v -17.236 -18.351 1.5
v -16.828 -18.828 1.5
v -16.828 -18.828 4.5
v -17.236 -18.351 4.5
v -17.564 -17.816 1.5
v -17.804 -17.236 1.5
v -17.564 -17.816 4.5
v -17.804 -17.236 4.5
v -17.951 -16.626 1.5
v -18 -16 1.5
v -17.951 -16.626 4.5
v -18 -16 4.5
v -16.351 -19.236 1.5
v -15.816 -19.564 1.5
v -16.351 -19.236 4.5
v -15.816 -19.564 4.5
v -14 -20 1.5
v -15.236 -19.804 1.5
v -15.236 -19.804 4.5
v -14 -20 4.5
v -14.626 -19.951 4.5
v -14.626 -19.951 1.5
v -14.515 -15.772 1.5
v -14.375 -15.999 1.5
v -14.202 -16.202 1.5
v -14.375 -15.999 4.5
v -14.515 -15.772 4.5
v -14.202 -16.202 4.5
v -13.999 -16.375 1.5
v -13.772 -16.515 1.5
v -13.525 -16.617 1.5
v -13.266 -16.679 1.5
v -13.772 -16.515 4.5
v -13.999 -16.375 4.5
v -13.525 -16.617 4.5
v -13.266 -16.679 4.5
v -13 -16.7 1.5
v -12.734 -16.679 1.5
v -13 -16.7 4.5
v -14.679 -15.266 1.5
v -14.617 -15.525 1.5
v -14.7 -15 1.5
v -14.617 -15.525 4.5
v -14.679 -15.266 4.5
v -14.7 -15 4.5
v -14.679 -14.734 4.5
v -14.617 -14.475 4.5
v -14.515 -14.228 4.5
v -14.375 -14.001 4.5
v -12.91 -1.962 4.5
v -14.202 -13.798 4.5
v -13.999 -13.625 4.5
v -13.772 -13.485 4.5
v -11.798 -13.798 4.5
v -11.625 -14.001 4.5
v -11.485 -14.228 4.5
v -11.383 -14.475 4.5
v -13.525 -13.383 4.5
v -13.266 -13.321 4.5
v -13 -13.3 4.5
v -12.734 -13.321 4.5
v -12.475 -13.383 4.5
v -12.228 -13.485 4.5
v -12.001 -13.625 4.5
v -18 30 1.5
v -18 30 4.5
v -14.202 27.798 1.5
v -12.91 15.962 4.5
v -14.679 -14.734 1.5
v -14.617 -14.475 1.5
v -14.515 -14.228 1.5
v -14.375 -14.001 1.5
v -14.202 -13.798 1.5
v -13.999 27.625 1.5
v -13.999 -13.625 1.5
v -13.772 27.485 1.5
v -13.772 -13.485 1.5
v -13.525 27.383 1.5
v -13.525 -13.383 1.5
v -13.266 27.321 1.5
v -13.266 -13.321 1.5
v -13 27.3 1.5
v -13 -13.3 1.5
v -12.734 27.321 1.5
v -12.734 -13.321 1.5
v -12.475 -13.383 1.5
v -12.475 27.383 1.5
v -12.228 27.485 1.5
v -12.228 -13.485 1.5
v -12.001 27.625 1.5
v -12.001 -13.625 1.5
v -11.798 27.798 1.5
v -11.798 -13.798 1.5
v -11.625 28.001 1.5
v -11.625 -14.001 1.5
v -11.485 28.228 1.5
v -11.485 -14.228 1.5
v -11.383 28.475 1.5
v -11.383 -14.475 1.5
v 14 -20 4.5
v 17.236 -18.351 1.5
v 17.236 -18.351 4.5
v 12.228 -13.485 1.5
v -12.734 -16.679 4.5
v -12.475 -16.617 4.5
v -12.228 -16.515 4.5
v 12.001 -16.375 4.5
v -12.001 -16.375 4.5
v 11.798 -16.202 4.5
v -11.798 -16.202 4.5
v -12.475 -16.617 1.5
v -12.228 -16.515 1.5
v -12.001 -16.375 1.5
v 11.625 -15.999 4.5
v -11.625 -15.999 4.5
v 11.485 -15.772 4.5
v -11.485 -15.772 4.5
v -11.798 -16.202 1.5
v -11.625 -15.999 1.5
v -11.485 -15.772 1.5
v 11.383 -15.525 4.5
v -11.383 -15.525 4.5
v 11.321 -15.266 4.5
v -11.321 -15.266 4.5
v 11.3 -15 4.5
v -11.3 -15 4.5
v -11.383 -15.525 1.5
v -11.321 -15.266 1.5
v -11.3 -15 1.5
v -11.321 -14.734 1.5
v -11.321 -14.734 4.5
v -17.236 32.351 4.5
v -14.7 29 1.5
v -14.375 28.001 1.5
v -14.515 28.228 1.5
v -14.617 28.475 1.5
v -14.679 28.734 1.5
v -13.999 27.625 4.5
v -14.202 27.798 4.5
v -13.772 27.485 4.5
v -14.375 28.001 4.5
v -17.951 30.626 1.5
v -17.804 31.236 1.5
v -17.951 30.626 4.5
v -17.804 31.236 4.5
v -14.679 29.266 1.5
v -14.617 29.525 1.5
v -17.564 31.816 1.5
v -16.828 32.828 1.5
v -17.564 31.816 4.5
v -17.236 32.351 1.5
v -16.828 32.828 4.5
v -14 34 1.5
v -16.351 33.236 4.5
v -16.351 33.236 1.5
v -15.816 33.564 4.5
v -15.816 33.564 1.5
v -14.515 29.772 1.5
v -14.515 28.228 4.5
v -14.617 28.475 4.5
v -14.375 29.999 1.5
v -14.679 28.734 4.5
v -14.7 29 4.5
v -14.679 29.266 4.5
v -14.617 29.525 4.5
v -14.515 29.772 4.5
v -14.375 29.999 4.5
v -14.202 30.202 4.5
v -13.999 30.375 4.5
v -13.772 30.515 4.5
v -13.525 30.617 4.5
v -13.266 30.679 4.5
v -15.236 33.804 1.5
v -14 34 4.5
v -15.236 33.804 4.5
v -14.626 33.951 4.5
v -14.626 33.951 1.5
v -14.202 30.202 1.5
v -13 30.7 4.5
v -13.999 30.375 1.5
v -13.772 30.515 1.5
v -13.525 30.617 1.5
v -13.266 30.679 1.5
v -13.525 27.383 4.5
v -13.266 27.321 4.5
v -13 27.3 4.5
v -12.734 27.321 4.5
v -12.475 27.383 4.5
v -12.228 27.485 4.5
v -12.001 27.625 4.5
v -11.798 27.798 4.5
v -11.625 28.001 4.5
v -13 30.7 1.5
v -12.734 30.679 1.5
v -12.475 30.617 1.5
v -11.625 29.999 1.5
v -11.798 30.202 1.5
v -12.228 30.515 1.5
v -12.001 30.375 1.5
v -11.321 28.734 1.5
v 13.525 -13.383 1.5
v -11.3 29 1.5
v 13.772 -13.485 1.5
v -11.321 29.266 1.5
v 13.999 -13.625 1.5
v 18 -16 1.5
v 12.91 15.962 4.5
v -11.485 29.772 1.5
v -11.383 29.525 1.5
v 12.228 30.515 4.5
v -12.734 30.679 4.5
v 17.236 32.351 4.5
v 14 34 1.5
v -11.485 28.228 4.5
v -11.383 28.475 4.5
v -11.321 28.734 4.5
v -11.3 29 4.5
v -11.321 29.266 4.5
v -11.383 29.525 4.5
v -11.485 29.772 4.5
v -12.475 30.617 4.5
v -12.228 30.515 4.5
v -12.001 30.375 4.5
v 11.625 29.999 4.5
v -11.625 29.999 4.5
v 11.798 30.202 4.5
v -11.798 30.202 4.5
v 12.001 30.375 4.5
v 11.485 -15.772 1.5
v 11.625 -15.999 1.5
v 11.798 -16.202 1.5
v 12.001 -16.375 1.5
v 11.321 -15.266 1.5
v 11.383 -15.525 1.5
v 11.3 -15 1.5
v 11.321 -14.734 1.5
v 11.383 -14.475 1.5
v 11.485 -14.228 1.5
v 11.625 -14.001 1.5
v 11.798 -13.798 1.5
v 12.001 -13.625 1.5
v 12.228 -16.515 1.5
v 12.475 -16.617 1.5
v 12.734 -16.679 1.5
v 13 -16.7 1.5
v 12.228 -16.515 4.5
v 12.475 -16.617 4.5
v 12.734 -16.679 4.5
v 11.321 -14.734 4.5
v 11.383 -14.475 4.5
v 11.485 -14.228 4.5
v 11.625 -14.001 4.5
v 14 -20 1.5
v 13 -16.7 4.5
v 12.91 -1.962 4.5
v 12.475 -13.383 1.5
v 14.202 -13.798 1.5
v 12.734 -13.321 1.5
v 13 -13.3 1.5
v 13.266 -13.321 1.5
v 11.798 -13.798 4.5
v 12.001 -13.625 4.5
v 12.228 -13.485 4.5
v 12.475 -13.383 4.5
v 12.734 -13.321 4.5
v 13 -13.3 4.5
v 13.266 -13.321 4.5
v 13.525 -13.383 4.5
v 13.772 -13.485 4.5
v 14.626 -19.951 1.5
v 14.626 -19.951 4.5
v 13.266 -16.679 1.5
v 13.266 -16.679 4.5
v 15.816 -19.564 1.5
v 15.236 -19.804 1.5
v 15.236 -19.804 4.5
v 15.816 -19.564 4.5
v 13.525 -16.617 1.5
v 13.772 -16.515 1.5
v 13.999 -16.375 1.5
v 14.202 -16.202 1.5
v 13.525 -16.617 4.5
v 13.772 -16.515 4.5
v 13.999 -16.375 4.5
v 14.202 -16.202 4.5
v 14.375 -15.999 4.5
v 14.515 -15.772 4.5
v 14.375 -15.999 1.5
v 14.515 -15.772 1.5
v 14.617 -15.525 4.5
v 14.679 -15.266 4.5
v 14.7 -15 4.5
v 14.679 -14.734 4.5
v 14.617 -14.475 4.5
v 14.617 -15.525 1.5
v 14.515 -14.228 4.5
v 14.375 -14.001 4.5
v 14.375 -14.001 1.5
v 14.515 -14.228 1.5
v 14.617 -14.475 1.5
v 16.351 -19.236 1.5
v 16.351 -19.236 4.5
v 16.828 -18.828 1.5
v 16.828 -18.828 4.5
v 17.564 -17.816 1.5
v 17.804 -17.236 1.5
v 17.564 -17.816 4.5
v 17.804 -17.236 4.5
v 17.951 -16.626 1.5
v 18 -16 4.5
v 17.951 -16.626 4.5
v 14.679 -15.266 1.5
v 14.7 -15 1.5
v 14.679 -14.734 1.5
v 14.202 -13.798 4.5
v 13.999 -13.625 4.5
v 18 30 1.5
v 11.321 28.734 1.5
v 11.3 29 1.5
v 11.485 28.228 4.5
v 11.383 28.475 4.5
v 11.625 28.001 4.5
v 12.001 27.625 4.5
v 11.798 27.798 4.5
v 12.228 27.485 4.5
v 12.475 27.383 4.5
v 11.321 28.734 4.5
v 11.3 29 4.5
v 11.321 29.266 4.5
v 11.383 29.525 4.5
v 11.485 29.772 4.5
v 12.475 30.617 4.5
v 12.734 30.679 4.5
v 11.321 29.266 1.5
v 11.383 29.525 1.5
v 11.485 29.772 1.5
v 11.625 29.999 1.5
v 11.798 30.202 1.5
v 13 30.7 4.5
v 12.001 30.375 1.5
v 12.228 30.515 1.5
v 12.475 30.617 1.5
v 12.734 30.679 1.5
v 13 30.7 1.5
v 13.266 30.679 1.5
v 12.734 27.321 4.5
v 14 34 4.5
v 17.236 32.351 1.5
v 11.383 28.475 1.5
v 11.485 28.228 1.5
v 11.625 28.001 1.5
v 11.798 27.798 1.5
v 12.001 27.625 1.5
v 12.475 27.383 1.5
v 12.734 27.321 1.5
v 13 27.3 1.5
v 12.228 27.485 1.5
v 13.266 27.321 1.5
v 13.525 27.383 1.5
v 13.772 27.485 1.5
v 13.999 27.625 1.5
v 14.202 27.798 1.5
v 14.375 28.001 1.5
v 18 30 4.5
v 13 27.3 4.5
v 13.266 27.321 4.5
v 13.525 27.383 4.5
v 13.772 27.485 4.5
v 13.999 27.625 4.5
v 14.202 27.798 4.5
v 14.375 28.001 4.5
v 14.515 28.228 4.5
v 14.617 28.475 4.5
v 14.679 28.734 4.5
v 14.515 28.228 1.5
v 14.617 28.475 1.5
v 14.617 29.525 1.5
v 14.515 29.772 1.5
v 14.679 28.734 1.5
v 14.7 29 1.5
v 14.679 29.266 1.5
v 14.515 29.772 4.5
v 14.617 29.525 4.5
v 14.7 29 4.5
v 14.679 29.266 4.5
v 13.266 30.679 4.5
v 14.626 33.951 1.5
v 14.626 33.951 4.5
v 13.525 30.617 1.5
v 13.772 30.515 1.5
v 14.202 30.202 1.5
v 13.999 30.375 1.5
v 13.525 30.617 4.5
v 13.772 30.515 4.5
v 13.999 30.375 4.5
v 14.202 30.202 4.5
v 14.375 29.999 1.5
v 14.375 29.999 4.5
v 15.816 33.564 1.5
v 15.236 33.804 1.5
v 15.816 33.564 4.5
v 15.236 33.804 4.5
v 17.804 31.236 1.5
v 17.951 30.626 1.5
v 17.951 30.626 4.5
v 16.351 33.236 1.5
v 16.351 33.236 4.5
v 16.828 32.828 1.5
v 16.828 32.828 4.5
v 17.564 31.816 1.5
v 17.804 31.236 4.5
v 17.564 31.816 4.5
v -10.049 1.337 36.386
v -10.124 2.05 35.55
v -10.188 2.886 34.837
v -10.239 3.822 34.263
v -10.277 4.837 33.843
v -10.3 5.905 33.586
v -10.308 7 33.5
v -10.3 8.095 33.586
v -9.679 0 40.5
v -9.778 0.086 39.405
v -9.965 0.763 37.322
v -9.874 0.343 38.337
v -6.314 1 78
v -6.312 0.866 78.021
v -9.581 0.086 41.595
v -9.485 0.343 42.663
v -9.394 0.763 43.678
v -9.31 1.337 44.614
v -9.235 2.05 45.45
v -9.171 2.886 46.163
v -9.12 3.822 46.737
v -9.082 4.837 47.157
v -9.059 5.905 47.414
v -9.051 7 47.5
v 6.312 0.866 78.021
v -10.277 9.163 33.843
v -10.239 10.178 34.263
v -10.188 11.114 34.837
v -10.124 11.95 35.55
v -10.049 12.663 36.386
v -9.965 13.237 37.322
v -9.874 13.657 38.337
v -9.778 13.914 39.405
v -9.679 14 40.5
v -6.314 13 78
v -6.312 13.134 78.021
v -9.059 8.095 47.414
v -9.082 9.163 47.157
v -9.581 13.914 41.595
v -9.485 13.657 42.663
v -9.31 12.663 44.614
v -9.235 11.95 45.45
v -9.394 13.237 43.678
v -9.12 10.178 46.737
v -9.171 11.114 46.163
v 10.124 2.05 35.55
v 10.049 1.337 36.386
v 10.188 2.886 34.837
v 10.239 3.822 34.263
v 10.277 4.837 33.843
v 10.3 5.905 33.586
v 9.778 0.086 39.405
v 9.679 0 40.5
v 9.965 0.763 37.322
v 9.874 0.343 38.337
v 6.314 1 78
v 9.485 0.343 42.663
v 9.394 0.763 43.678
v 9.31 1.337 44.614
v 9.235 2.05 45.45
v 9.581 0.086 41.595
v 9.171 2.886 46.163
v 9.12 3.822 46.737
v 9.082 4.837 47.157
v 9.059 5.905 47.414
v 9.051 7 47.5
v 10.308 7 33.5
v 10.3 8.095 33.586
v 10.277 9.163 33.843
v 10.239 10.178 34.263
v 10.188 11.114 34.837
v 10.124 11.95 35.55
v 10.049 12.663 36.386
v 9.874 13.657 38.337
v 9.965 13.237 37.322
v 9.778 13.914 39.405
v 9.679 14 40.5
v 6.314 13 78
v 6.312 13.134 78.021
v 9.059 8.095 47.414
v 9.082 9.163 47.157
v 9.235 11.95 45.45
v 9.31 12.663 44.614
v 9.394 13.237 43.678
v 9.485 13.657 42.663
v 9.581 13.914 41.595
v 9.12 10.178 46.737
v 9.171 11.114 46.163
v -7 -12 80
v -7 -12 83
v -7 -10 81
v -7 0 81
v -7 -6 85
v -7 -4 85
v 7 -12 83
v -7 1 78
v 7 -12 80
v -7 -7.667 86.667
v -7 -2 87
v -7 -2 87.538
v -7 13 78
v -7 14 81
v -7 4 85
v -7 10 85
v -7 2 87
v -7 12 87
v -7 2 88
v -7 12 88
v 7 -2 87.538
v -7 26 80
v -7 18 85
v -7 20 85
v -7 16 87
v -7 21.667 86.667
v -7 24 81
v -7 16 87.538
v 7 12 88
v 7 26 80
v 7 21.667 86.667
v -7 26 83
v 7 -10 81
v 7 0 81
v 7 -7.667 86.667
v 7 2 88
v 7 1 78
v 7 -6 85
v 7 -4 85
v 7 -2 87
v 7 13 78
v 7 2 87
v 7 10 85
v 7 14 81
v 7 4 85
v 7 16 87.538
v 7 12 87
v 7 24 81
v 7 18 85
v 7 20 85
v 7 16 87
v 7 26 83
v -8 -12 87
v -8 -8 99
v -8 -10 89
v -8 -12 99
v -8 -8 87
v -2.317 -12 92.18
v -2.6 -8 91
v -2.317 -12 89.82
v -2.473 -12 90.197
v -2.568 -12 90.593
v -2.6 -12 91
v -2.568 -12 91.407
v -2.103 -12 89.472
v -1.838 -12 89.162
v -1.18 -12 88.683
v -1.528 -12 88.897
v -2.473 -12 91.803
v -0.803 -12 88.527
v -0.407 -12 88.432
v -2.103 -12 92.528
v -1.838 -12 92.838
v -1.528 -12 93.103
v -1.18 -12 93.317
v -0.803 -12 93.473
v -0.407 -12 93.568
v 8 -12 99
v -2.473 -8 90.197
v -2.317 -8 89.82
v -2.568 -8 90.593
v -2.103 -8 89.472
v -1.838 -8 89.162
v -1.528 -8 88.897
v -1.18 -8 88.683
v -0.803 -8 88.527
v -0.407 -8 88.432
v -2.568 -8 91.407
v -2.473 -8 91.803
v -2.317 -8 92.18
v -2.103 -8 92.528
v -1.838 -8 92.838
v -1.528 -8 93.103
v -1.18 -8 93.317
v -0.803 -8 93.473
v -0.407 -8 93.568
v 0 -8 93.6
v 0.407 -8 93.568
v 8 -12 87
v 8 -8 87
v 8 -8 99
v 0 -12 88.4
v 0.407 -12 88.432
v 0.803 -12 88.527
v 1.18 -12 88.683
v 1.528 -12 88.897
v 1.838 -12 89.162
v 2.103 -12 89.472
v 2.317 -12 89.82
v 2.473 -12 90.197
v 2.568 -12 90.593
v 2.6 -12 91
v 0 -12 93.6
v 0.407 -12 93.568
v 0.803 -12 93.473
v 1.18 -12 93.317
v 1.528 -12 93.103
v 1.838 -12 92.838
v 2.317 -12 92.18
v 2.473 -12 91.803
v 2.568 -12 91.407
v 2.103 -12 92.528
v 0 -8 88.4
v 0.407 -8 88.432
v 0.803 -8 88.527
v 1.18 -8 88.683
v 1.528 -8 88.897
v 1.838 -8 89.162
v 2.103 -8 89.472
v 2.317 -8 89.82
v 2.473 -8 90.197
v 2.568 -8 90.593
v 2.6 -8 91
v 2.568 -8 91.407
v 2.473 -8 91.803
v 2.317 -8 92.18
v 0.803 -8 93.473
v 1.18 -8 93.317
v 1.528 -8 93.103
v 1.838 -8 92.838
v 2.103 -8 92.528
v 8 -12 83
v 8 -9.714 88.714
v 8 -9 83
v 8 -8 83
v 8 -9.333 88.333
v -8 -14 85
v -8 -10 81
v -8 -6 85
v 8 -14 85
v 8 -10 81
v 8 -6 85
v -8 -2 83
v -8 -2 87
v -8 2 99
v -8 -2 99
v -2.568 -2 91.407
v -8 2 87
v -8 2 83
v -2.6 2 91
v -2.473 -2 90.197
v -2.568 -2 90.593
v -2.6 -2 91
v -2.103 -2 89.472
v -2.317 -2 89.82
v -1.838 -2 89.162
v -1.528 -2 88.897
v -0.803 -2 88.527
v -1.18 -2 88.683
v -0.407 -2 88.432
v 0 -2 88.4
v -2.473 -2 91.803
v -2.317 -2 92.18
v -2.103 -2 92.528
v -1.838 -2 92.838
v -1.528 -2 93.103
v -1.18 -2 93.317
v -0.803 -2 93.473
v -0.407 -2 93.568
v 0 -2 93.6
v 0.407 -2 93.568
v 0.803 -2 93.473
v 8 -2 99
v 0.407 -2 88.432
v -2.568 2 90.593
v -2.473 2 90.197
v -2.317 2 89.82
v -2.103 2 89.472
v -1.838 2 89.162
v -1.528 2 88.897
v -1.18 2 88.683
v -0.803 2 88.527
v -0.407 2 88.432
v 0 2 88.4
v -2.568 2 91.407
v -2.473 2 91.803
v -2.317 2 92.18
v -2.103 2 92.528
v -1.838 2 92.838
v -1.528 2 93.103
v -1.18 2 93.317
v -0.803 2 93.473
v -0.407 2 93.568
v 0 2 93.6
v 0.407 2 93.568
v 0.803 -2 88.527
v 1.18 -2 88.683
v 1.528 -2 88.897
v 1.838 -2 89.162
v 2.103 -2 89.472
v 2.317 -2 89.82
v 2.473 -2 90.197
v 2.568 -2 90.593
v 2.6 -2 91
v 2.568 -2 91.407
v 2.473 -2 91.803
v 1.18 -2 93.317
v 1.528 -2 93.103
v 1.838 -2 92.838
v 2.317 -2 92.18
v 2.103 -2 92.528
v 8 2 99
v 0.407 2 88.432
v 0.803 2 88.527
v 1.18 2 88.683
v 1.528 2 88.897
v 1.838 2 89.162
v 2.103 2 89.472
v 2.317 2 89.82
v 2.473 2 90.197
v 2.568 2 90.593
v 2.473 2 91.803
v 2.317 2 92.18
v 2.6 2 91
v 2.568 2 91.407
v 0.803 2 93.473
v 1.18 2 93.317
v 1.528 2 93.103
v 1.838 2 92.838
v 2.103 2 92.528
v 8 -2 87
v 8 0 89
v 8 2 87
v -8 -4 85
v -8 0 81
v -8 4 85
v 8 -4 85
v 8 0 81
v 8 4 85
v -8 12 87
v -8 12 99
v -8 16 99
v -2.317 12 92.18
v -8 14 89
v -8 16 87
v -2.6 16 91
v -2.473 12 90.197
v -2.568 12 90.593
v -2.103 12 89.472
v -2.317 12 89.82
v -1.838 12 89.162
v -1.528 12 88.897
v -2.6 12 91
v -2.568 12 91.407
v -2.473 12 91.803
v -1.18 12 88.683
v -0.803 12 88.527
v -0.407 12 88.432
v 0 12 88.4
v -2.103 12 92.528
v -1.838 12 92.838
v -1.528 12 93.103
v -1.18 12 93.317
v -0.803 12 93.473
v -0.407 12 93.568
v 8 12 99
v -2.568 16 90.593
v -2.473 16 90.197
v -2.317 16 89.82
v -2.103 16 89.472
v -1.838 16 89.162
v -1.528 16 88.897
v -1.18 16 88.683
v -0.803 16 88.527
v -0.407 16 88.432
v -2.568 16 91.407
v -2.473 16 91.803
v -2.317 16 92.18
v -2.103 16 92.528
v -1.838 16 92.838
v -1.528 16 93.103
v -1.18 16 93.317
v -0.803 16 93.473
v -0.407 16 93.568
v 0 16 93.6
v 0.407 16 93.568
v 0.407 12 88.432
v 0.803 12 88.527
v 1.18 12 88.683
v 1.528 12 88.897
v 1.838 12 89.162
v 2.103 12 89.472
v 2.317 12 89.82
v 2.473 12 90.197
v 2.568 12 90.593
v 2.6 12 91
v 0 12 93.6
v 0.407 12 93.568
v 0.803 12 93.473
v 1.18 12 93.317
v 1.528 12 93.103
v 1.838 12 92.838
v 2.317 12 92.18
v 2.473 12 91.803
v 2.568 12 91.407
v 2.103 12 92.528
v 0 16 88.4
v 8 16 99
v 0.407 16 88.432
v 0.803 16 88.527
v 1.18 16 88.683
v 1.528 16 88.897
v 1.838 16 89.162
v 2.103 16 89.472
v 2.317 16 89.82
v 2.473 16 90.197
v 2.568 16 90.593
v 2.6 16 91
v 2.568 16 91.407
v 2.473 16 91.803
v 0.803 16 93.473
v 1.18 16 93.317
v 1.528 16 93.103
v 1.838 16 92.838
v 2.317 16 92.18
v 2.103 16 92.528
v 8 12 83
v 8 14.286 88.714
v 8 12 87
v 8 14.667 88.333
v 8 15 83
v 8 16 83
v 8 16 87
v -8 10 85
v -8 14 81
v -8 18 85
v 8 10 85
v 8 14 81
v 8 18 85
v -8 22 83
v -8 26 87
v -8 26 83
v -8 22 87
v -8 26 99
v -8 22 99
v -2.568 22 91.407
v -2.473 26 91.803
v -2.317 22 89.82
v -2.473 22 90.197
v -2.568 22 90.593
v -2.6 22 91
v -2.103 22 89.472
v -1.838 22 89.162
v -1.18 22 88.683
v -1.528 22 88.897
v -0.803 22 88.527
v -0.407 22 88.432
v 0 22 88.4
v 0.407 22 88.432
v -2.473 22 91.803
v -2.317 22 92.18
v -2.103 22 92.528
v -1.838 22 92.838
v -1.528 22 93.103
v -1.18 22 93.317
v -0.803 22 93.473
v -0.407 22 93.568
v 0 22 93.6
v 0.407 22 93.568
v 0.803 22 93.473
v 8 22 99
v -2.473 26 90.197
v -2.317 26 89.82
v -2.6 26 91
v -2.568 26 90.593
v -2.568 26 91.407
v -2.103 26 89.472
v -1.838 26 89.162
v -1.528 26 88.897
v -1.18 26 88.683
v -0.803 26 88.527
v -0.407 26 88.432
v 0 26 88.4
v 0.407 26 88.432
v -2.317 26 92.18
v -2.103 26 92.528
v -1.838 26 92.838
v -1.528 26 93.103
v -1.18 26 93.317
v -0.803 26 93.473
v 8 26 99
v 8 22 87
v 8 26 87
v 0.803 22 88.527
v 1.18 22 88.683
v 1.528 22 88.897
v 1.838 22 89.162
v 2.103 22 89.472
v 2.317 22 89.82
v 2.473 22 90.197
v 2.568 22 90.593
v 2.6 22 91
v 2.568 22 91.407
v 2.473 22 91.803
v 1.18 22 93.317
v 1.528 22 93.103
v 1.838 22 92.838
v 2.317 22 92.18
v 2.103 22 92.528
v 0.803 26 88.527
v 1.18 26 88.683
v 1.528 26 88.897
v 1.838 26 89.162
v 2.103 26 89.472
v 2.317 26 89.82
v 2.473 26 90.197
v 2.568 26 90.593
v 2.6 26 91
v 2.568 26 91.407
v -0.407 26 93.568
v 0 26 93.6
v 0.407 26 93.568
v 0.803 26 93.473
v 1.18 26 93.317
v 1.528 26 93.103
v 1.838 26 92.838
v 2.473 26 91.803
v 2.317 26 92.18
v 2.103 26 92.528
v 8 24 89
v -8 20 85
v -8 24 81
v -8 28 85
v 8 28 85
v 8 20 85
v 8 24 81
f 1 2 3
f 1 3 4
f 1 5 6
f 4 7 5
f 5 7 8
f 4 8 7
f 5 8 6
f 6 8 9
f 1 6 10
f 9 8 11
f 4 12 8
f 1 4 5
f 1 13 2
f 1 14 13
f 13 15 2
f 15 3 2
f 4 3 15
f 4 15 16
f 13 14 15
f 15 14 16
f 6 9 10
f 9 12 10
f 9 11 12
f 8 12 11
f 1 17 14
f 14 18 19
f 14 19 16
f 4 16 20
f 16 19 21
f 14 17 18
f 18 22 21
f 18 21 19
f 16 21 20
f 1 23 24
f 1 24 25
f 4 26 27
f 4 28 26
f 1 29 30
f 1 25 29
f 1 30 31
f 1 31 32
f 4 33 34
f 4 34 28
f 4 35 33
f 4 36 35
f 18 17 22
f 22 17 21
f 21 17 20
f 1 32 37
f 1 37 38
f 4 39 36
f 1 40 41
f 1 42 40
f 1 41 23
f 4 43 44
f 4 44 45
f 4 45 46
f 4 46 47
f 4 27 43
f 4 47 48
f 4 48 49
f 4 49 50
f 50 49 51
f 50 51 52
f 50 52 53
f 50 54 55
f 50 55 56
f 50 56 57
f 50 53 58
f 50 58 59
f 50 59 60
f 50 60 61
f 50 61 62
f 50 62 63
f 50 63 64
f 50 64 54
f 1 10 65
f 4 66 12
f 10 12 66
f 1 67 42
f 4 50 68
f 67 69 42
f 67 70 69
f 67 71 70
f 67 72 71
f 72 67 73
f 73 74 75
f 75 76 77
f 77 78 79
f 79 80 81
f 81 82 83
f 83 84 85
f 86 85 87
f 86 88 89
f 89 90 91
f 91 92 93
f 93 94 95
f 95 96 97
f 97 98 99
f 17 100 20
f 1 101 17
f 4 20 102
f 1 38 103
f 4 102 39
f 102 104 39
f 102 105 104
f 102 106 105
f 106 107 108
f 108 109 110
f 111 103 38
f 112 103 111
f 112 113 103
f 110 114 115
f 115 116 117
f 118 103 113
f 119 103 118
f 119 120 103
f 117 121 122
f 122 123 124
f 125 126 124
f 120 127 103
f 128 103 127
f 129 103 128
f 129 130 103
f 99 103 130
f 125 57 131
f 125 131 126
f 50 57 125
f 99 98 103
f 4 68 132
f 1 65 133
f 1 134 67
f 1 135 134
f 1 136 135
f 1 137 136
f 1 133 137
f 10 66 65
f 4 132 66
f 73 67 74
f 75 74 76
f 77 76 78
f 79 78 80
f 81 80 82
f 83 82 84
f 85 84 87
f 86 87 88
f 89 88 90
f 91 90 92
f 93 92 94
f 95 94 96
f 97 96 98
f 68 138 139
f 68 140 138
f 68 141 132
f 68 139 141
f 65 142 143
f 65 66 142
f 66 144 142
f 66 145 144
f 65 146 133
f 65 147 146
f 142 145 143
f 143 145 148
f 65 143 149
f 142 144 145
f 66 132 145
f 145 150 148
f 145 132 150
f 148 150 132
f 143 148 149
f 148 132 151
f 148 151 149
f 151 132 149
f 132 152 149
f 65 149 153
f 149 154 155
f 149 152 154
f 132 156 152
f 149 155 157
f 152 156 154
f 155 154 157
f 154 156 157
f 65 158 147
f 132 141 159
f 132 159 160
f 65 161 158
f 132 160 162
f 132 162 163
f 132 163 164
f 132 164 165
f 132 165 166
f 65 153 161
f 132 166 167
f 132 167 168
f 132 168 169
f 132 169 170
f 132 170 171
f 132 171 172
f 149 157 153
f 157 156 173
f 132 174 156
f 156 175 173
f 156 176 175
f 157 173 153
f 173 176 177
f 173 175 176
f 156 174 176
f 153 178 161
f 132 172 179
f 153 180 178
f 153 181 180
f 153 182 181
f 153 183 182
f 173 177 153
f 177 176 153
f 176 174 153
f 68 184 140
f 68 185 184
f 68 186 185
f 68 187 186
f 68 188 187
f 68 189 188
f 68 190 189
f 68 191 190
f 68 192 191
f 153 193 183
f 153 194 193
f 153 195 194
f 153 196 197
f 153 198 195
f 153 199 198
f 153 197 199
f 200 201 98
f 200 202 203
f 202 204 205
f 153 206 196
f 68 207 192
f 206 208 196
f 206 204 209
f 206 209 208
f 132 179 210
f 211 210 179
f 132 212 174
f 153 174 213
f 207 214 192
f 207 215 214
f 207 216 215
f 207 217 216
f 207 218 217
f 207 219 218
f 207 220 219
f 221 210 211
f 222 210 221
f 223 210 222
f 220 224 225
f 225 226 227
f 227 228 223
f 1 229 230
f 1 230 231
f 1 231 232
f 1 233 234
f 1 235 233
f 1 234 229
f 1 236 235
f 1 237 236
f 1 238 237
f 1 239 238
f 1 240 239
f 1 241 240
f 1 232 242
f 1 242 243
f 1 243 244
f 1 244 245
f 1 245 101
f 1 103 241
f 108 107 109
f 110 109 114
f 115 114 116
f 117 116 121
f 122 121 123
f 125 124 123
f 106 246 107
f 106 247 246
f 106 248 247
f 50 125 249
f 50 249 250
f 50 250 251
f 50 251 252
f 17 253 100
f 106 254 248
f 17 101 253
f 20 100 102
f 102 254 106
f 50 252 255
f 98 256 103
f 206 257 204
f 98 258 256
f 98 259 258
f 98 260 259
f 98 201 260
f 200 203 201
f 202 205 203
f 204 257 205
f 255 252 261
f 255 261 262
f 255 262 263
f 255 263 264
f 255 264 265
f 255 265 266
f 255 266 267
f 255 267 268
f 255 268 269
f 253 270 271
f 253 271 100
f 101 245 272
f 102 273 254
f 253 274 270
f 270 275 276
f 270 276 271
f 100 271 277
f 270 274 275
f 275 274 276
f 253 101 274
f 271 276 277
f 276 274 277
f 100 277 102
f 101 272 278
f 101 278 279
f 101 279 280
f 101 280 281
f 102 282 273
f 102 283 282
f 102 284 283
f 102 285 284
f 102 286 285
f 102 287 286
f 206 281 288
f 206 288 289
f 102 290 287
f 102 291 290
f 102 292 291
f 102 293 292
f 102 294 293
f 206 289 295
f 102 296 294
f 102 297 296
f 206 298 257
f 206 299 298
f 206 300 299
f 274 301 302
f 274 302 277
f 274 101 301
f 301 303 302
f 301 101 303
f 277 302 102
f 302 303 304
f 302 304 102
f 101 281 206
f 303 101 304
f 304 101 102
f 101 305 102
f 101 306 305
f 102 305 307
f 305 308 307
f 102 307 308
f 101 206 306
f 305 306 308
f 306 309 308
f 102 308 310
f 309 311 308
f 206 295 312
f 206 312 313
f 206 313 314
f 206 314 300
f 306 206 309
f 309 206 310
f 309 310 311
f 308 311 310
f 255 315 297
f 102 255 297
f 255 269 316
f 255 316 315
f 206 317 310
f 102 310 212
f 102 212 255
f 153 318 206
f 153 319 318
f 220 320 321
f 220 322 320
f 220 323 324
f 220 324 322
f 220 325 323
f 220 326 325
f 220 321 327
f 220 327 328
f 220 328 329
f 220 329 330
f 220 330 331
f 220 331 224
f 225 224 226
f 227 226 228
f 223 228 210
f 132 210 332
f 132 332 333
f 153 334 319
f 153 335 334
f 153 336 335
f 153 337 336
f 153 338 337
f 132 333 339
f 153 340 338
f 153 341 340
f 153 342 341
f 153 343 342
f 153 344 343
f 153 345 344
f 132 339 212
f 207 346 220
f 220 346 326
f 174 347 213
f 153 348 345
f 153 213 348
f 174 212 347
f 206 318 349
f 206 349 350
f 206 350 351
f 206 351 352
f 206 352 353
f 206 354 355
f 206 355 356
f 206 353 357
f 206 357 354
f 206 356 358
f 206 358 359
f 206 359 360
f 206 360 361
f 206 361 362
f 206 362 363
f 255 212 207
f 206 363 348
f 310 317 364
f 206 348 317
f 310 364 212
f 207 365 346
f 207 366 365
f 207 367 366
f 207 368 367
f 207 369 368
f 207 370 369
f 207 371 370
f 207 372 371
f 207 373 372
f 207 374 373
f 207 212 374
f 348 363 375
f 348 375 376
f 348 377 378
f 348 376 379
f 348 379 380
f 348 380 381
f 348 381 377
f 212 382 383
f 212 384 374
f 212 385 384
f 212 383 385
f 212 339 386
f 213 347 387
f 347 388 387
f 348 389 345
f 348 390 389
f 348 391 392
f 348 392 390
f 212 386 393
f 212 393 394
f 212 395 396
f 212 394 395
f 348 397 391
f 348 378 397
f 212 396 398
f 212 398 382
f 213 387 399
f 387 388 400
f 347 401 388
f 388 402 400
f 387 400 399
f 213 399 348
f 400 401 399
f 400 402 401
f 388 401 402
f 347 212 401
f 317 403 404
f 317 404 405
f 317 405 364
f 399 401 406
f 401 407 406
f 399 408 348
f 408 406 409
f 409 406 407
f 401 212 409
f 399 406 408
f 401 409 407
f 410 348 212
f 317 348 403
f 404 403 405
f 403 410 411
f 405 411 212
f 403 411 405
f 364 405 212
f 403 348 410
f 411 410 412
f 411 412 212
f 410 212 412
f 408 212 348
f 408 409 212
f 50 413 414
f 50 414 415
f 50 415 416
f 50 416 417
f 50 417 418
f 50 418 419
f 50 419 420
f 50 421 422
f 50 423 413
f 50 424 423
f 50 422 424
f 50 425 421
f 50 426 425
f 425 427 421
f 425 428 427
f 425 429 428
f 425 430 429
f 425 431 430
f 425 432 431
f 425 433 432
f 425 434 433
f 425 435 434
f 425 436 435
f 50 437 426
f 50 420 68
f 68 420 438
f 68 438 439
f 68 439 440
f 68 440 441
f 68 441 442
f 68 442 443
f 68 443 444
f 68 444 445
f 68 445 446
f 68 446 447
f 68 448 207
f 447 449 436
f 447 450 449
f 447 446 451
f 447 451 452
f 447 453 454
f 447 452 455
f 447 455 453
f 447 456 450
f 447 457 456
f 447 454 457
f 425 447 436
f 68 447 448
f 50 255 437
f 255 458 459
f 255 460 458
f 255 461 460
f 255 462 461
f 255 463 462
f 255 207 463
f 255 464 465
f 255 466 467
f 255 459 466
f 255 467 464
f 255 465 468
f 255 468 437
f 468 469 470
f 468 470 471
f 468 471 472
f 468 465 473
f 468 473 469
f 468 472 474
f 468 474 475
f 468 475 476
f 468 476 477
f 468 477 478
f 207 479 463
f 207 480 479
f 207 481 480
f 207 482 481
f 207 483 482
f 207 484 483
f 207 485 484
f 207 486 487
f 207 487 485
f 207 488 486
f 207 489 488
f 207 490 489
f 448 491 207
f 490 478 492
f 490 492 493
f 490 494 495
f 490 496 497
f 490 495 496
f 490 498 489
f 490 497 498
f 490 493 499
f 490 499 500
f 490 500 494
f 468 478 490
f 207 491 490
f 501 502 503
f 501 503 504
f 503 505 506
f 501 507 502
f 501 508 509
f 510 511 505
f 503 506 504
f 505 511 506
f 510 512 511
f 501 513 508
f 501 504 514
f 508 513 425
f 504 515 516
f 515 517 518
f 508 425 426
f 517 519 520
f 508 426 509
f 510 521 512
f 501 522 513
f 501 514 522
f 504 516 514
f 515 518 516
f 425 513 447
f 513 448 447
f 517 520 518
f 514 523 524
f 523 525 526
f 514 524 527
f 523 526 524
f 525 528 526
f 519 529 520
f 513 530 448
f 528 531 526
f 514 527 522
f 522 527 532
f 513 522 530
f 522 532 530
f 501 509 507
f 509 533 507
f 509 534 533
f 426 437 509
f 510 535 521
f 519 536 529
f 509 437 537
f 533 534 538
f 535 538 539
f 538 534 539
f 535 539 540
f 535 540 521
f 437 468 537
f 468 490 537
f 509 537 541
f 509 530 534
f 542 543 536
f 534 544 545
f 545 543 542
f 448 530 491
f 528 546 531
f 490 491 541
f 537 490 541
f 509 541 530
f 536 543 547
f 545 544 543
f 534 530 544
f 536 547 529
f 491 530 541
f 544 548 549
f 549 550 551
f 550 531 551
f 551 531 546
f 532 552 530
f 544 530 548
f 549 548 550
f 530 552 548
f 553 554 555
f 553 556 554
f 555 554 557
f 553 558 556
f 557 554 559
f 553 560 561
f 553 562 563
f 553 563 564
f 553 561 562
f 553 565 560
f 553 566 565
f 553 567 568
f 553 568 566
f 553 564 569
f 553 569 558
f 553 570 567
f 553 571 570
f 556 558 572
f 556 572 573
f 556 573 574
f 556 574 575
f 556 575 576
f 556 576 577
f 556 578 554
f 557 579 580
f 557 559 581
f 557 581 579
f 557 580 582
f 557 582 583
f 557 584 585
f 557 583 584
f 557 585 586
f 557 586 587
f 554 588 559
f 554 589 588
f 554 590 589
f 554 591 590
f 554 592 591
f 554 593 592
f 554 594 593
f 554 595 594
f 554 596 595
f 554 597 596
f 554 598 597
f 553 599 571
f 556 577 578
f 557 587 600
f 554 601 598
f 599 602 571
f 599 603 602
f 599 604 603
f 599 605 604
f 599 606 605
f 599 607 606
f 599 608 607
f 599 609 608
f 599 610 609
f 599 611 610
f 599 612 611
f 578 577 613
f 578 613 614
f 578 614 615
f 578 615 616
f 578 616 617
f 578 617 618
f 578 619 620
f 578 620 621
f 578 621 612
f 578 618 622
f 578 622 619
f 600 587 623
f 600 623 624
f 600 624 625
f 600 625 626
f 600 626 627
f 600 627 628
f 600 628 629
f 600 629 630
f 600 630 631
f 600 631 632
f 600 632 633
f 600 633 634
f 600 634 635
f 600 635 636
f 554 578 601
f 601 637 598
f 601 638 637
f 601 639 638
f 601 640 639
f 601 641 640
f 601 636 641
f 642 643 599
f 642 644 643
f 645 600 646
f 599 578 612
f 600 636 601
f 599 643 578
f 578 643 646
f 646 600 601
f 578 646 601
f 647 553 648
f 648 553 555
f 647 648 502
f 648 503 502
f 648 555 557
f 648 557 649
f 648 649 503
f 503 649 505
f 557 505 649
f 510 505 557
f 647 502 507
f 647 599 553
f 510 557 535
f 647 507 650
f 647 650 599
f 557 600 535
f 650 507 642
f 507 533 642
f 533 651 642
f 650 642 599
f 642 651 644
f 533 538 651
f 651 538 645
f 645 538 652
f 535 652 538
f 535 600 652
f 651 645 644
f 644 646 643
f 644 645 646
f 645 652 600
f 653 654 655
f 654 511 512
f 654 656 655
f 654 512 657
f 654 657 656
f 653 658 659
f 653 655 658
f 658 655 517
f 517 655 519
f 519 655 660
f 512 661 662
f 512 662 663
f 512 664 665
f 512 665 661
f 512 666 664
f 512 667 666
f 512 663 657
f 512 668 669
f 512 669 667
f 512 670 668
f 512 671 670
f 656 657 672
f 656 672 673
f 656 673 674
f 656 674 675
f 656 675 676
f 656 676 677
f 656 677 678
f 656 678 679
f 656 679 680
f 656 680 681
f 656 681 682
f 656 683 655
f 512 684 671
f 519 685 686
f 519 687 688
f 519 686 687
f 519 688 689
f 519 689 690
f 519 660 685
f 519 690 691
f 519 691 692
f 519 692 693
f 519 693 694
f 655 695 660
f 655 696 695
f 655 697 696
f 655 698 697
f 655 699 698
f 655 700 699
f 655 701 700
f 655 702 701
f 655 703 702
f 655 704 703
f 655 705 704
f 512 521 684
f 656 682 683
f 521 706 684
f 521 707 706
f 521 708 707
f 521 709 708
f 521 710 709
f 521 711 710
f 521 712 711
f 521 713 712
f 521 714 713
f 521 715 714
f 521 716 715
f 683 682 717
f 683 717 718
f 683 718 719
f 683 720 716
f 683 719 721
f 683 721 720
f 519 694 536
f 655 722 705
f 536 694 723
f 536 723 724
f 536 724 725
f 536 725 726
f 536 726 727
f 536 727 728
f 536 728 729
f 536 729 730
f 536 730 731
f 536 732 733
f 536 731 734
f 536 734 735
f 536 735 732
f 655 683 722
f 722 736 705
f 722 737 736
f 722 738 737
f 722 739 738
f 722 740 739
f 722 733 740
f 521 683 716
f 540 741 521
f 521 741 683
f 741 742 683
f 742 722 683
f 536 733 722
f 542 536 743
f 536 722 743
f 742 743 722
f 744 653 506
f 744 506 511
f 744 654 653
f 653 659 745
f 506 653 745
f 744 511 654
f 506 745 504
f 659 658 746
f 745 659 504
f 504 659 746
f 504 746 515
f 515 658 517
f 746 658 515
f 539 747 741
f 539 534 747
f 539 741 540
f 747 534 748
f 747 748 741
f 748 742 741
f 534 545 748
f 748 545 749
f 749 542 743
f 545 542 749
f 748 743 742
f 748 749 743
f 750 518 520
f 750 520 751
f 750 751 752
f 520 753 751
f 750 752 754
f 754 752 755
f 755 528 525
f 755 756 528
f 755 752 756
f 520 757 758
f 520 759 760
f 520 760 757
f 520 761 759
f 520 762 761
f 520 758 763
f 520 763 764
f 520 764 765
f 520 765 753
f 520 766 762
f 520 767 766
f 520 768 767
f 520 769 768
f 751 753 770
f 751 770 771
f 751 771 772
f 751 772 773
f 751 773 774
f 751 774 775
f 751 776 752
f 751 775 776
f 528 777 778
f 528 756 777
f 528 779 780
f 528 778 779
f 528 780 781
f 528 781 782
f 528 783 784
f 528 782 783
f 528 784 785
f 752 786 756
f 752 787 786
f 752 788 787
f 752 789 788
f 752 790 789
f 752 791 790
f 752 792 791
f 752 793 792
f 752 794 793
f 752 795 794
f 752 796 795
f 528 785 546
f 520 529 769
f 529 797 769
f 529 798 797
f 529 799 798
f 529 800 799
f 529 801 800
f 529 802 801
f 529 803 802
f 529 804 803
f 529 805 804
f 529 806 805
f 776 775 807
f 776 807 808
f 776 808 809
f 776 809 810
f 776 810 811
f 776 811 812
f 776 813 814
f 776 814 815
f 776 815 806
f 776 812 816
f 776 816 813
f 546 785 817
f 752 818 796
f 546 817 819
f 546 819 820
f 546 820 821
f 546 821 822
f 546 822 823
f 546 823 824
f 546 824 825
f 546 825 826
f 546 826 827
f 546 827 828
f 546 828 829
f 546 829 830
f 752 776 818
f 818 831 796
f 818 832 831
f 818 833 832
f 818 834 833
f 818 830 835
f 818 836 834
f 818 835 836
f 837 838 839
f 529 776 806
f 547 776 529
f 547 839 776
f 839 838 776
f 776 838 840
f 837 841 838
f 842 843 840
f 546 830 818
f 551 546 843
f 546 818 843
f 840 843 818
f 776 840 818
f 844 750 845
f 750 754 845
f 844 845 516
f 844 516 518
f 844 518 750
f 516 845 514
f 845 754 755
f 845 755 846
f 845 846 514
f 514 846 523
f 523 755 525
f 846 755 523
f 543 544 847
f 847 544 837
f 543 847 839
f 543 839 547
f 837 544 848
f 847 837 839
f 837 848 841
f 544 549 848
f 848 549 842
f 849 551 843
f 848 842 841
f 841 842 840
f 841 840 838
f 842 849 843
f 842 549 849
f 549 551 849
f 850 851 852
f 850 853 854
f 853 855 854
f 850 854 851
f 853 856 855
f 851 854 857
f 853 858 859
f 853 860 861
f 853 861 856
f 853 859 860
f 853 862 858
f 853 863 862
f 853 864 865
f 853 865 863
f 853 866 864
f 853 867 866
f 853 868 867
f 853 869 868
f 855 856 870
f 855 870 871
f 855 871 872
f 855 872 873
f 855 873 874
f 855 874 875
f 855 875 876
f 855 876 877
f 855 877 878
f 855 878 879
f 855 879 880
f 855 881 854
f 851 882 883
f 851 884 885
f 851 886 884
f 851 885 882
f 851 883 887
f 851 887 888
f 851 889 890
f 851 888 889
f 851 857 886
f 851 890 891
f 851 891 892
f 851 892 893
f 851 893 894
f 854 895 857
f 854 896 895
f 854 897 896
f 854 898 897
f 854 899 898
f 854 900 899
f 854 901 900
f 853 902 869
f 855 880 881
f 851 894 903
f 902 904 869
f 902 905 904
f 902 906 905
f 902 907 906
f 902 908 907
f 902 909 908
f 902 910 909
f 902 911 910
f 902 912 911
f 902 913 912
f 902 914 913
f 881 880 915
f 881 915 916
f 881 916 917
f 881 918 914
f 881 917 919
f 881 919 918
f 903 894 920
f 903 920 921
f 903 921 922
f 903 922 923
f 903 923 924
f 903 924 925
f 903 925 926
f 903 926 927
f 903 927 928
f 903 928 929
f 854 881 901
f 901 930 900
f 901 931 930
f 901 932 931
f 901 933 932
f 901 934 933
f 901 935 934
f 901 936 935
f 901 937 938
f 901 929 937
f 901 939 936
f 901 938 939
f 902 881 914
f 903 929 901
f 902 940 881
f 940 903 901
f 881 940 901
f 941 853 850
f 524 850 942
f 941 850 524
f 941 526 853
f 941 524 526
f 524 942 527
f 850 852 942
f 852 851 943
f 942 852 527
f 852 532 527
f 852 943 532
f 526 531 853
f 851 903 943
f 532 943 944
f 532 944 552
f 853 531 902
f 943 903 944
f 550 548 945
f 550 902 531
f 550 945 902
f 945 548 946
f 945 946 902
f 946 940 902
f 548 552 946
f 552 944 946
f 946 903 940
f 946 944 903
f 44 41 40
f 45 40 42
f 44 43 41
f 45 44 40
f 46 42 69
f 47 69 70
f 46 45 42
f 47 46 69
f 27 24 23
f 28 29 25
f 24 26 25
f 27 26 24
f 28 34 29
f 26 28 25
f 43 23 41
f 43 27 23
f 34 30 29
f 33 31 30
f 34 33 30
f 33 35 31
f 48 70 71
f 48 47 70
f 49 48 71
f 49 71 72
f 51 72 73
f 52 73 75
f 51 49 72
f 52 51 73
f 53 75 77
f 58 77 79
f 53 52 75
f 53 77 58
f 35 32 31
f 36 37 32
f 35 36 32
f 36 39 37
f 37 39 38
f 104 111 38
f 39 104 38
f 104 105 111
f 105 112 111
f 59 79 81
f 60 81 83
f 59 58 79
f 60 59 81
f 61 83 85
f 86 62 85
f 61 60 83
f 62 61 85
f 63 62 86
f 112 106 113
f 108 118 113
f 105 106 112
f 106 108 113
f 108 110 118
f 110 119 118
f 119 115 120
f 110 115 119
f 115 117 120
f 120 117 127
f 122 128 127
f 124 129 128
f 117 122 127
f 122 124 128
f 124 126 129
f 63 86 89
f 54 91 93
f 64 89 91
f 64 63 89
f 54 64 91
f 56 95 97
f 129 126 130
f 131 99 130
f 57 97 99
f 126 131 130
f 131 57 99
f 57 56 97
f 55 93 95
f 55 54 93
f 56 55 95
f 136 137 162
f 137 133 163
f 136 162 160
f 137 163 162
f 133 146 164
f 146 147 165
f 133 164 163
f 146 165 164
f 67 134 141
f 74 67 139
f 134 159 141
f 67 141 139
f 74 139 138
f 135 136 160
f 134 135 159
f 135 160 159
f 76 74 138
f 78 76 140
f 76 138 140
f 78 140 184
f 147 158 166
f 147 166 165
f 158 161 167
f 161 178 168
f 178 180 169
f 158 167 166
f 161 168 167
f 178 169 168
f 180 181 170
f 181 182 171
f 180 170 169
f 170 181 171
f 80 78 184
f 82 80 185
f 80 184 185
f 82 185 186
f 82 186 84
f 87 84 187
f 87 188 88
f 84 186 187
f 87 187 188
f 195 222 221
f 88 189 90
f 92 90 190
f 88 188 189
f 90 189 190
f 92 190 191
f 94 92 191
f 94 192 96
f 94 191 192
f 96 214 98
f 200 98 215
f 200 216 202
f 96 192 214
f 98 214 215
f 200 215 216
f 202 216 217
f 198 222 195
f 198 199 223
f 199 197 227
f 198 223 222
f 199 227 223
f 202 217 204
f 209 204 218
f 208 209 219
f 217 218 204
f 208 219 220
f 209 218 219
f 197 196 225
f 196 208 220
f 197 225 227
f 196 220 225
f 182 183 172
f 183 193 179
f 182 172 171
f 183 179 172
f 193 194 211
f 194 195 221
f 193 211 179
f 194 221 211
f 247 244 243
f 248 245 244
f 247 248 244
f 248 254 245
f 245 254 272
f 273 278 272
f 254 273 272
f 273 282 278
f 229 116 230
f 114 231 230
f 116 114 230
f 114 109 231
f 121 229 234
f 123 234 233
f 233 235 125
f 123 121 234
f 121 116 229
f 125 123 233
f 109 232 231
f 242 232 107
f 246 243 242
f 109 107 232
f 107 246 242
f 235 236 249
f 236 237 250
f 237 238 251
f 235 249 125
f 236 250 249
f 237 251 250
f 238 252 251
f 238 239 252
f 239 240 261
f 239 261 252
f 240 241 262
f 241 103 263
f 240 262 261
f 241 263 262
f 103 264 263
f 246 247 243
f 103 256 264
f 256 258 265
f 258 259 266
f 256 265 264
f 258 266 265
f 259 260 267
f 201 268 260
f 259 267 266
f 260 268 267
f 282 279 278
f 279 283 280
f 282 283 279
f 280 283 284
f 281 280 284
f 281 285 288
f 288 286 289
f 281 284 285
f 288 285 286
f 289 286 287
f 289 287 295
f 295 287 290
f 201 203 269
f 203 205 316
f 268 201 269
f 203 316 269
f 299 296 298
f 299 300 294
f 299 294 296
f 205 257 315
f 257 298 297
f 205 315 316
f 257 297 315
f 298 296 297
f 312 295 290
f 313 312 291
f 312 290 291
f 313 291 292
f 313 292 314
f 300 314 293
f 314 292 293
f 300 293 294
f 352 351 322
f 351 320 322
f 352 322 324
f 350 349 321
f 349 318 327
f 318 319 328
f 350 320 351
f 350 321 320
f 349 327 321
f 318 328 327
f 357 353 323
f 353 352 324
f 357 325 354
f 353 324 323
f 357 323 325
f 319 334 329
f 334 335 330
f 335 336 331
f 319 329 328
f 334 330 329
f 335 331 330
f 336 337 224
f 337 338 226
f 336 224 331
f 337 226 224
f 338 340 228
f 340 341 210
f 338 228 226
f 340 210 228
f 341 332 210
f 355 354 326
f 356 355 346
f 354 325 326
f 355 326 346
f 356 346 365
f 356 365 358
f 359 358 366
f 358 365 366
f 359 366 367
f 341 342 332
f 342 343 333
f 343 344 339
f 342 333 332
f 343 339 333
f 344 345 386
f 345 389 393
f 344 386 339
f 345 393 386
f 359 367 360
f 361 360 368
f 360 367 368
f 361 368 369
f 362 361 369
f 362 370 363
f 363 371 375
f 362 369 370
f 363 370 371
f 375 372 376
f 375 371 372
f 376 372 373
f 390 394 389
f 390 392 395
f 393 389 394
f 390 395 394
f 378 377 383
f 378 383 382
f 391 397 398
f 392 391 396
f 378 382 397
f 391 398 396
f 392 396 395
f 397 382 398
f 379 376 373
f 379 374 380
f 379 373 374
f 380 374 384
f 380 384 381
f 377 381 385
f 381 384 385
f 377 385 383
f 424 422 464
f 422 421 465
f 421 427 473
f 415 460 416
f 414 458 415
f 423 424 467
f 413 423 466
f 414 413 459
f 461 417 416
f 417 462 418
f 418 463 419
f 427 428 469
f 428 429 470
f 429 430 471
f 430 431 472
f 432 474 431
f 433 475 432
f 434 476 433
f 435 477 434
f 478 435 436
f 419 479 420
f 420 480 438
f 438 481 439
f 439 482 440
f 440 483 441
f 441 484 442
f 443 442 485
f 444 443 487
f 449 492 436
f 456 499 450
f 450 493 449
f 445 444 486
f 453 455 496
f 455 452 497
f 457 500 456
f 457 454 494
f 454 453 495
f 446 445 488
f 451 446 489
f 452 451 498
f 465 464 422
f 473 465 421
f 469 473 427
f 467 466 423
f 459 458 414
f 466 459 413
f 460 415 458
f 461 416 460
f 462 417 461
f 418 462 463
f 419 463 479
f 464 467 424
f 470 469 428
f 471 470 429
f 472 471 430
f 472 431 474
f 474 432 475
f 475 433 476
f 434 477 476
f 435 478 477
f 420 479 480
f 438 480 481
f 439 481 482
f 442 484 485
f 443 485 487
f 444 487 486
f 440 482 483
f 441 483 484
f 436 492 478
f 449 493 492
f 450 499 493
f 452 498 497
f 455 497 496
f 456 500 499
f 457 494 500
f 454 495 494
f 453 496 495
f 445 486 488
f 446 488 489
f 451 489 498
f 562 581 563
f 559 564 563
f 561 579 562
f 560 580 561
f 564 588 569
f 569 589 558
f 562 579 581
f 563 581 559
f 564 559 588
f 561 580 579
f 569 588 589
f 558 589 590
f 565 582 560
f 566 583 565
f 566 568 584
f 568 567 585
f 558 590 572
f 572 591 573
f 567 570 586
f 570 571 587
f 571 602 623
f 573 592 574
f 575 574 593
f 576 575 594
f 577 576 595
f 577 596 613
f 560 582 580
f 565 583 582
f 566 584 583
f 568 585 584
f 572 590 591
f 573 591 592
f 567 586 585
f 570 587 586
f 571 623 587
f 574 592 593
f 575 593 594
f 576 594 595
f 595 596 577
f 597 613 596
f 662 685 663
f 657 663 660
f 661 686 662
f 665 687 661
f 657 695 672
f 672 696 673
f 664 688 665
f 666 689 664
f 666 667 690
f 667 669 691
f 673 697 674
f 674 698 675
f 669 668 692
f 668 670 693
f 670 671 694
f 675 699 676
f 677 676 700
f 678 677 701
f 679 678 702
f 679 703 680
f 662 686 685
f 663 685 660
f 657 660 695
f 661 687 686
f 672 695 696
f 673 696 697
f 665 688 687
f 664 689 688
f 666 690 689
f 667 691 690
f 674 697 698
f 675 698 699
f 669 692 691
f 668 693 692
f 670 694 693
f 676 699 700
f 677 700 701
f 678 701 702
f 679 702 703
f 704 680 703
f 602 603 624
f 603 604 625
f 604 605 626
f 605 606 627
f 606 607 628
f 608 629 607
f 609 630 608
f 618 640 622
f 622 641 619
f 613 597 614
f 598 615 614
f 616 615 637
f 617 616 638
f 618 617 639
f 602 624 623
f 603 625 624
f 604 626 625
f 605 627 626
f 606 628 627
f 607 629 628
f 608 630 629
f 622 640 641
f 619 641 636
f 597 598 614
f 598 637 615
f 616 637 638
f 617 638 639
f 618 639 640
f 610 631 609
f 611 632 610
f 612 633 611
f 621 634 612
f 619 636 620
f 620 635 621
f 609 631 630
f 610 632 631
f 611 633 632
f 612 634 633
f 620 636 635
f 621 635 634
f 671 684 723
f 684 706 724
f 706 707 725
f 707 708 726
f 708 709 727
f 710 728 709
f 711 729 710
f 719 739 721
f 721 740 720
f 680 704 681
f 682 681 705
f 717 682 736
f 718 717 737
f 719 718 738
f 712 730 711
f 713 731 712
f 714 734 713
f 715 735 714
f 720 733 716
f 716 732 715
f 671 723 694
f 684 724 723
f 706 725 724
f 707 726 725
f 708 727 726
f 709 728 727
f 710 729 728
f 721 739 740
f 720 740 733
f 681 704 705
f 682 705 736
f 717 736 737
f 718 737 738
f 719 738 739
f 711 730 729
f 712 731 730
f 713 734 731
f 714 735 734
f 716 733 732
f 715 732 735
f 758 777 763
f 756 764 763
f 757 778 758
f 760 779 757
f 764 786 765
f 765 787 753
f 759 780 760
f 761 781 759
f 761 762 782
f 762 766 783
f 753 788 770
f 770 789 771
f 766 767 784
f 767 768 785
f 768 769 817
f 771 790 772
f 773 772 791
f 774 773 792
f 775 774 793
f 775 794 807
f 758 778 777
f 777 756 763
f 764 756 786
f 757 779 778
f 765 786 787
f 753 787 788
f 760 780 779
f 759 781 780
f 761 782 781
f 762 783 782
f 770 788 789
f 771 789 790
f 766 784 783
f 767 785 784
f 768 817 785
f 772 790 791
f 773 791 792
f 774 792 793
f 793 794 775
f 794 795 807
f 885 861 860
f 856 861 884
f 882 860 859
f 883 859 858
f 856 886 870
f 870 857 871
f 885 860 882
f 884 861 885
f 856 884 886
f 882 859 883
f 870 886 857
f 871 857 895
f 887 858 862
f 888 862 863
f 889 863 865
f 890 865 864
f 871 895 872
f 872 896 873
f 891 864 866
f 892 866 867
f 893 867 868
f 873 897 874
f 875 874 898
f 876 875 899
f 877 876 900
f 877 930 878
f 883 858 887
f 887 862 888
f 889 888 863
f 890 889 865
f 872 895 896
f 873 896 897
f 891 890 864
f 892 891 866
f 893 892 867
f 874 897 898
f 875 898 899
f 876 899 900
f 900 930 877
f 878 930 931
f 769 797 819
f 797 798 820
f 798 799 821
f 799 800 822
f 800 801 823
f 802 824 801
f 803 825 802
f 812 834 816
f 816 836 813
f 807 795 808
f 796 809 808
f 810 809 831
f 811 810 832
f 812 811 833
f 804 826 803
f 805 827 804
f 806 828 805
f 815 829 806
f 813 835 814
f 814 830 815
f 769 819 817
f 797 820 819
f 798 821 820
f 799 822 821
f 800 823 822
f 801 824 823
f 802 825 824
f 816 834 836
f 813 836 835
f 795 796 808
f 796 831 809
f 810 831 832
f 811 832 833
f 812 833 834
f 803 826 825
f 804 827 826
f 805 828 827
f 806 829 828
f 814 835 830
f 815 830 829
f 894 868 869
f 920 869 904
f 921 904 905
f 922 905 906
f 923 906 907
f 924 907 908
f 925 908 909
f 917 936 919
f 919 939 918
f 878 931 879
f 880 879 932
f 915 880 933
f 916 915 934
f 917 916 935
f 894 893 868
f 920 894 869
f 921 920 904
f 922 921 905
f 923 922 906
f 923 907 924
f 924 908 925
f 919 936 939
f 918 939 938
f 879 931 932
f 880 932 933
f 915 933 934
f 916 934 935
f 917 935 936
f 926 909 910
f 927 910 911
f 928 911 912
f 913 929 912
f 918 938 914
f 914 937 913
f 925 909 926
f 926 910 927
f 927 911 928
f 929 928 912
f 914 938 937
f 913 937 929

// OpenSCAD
// ====================================================================
// Intermediate Alpine Cableway Twin-Sheave Support Tower (Continuous Loop)
// 
// Mechanical & Engineering Features:
// - Continuous Closed-Loop Cable Support: Holds BOTH the Uphill Cable Run and the Downhill Return Cable Run simultaneously!
// - Dual Sheave Cross-Arm: 
//   - Track 1 Sheave (Uphill Line): Positioned at Y = -5.0mm (open cantilever passage for uphill gondolas).
//   - Track 2 Sheave (Downhill Return Line): Positioned at Y = +19.0mm (open cantilever passage for downhill return line).
// - Deep V-Groove Retention: Cable tension forces the rope deep into the 45-degree V-groove track, preventing rope jump-off.
// - 100% Support-Free: Rests flat on build plate at Z = 0.
// ====================================================================

$fn = 40;

// Tower Dimensions (mm)
tower_axle_z  = 91.0;  // Axle center height at midpoint X = 0mm
base_l        = 36.0;  // Foundation baseplate length along X-axis
base_w        = 54.0;  // Wide foundation baseplate width spanning both cable lines
base_h        = 3.0;   // Baseplate thickness
mast_y        = 7.0;   // Central mast column position between Track 1 and Track 2

module rounded_box(l, w, h, r) {
    hull() {
        for (x = [-l/2 + r, l/2 - r]) {
            for (y = [-w/2 + r, w/2 - r]) {
                translate([x, y, 0])
                    cylinder(r = r, h = h);
            }
        }
    }
}

module twin_sheave_intermediate_tower() {
    difference() {
        union() {
            // 1. Centralized Wide Baseplate (Spans Y = -18mm to +32mm at Z = 0)
            translate([0, mast_y, base_h / 2])
                hull() {
                    rounded_box(base_l, base_w, base_h, 4.0);
                }

            // 2. Main Central Mast Column (Positioned at Y = +7.0mm between the two cable lines)
            hull() {
                translate([0, mast_y, base_h])
                    cube([base_l - 10.0, 18.0, 1.0], center = true);
                translate([0, mast_y, tower_axle_z - 10.0])
                    cube([12.0, 12.0, 1.0], center = true);
            }

            // 3. Double-Sided T-Beam Cross-Arm (Extends to Y = -5.0mm on left and Y = +19.0mm on right)
            hull() {
                translate([0, mast_y, tower_axle_z - 8.0])
                    cube([14.0, 12.0, 10.0], center = true);
                translate([0, -5.0, tower_axle_z - 8.0])
                    cube([14.0, 14.0, 6.0], center = true);
                translate([0, 19.0, tower_axle_z - 8.0])
                    cube([14.0, 14.0, 6.0], center = true);
            }

            // 4. Double Vertical Clevis Ear Sets (Track 1 @ Y = -5.0mm & Track 2 @ Y = +19.0mm)
            for (track_y = [-5.0, 19.0]) {
                for (y_sign = [-1, 1]) {
                    translate([0, track_y + y_sign * 5.0, tower_axle_z])
                        cube([16.0, 4.0, 16.0], center = true);
                    
                    // Lower 45-degree self-supporting anchor gussets
                    translate([0, track_y + y_sign * 5.0, tower_axle_z - 6.0])
                        rotate([0, 90, 0])
                            rotate([0, 0, 45])
                                cube([8.0 / sqrt(2), 8.0 / sqrt(2), 16.0], center = true);
                }
            }
        }

        // --- SUBTRACTIONS ---

        // A. Weight-Reduction Arch Cutouts in Central Mast
        translate([0, mast_y, (tower_axle_z - 10.0) / 2])
            rotate([0, 90, 0])
                cylinder(d = 14.0, h = base_l + 10, center = true);

        // B. Axle Bores for Track 1 & Track 2 (5.2mm bore diameter)
        translate([0, -5.0, tower_axle_z])
            rotate([90, 0, 0])
                cylinder(d = 5.2, h = 24, center = true);

        translate([0, 19.0, tower_axle_z])
            rotate([90, 0, 0])
                cylinder(d = 5.2, h = 24, center = true);

        // C. Baseplate Mounting Screw Holes (4x M3 countersunk holes)
        for (x_sign = [-1, 1]) {
            for (y_sign = [-1, 1]) {
                translate([x_sign * (base_l / 2 - 5.0), mast_y + y_sign * (base_w / 2 - 5.0), -1]) {
                    cylinder(d = 3.4, h = base_h + 4);
                    cylinder(d1 = 6.2, d2 = 3.4, h = 2.0);
                }
            }
        }
    }
}

// Render flat on foundation baseplate at Z = 0
twin_sheave_intermediate_tower();
